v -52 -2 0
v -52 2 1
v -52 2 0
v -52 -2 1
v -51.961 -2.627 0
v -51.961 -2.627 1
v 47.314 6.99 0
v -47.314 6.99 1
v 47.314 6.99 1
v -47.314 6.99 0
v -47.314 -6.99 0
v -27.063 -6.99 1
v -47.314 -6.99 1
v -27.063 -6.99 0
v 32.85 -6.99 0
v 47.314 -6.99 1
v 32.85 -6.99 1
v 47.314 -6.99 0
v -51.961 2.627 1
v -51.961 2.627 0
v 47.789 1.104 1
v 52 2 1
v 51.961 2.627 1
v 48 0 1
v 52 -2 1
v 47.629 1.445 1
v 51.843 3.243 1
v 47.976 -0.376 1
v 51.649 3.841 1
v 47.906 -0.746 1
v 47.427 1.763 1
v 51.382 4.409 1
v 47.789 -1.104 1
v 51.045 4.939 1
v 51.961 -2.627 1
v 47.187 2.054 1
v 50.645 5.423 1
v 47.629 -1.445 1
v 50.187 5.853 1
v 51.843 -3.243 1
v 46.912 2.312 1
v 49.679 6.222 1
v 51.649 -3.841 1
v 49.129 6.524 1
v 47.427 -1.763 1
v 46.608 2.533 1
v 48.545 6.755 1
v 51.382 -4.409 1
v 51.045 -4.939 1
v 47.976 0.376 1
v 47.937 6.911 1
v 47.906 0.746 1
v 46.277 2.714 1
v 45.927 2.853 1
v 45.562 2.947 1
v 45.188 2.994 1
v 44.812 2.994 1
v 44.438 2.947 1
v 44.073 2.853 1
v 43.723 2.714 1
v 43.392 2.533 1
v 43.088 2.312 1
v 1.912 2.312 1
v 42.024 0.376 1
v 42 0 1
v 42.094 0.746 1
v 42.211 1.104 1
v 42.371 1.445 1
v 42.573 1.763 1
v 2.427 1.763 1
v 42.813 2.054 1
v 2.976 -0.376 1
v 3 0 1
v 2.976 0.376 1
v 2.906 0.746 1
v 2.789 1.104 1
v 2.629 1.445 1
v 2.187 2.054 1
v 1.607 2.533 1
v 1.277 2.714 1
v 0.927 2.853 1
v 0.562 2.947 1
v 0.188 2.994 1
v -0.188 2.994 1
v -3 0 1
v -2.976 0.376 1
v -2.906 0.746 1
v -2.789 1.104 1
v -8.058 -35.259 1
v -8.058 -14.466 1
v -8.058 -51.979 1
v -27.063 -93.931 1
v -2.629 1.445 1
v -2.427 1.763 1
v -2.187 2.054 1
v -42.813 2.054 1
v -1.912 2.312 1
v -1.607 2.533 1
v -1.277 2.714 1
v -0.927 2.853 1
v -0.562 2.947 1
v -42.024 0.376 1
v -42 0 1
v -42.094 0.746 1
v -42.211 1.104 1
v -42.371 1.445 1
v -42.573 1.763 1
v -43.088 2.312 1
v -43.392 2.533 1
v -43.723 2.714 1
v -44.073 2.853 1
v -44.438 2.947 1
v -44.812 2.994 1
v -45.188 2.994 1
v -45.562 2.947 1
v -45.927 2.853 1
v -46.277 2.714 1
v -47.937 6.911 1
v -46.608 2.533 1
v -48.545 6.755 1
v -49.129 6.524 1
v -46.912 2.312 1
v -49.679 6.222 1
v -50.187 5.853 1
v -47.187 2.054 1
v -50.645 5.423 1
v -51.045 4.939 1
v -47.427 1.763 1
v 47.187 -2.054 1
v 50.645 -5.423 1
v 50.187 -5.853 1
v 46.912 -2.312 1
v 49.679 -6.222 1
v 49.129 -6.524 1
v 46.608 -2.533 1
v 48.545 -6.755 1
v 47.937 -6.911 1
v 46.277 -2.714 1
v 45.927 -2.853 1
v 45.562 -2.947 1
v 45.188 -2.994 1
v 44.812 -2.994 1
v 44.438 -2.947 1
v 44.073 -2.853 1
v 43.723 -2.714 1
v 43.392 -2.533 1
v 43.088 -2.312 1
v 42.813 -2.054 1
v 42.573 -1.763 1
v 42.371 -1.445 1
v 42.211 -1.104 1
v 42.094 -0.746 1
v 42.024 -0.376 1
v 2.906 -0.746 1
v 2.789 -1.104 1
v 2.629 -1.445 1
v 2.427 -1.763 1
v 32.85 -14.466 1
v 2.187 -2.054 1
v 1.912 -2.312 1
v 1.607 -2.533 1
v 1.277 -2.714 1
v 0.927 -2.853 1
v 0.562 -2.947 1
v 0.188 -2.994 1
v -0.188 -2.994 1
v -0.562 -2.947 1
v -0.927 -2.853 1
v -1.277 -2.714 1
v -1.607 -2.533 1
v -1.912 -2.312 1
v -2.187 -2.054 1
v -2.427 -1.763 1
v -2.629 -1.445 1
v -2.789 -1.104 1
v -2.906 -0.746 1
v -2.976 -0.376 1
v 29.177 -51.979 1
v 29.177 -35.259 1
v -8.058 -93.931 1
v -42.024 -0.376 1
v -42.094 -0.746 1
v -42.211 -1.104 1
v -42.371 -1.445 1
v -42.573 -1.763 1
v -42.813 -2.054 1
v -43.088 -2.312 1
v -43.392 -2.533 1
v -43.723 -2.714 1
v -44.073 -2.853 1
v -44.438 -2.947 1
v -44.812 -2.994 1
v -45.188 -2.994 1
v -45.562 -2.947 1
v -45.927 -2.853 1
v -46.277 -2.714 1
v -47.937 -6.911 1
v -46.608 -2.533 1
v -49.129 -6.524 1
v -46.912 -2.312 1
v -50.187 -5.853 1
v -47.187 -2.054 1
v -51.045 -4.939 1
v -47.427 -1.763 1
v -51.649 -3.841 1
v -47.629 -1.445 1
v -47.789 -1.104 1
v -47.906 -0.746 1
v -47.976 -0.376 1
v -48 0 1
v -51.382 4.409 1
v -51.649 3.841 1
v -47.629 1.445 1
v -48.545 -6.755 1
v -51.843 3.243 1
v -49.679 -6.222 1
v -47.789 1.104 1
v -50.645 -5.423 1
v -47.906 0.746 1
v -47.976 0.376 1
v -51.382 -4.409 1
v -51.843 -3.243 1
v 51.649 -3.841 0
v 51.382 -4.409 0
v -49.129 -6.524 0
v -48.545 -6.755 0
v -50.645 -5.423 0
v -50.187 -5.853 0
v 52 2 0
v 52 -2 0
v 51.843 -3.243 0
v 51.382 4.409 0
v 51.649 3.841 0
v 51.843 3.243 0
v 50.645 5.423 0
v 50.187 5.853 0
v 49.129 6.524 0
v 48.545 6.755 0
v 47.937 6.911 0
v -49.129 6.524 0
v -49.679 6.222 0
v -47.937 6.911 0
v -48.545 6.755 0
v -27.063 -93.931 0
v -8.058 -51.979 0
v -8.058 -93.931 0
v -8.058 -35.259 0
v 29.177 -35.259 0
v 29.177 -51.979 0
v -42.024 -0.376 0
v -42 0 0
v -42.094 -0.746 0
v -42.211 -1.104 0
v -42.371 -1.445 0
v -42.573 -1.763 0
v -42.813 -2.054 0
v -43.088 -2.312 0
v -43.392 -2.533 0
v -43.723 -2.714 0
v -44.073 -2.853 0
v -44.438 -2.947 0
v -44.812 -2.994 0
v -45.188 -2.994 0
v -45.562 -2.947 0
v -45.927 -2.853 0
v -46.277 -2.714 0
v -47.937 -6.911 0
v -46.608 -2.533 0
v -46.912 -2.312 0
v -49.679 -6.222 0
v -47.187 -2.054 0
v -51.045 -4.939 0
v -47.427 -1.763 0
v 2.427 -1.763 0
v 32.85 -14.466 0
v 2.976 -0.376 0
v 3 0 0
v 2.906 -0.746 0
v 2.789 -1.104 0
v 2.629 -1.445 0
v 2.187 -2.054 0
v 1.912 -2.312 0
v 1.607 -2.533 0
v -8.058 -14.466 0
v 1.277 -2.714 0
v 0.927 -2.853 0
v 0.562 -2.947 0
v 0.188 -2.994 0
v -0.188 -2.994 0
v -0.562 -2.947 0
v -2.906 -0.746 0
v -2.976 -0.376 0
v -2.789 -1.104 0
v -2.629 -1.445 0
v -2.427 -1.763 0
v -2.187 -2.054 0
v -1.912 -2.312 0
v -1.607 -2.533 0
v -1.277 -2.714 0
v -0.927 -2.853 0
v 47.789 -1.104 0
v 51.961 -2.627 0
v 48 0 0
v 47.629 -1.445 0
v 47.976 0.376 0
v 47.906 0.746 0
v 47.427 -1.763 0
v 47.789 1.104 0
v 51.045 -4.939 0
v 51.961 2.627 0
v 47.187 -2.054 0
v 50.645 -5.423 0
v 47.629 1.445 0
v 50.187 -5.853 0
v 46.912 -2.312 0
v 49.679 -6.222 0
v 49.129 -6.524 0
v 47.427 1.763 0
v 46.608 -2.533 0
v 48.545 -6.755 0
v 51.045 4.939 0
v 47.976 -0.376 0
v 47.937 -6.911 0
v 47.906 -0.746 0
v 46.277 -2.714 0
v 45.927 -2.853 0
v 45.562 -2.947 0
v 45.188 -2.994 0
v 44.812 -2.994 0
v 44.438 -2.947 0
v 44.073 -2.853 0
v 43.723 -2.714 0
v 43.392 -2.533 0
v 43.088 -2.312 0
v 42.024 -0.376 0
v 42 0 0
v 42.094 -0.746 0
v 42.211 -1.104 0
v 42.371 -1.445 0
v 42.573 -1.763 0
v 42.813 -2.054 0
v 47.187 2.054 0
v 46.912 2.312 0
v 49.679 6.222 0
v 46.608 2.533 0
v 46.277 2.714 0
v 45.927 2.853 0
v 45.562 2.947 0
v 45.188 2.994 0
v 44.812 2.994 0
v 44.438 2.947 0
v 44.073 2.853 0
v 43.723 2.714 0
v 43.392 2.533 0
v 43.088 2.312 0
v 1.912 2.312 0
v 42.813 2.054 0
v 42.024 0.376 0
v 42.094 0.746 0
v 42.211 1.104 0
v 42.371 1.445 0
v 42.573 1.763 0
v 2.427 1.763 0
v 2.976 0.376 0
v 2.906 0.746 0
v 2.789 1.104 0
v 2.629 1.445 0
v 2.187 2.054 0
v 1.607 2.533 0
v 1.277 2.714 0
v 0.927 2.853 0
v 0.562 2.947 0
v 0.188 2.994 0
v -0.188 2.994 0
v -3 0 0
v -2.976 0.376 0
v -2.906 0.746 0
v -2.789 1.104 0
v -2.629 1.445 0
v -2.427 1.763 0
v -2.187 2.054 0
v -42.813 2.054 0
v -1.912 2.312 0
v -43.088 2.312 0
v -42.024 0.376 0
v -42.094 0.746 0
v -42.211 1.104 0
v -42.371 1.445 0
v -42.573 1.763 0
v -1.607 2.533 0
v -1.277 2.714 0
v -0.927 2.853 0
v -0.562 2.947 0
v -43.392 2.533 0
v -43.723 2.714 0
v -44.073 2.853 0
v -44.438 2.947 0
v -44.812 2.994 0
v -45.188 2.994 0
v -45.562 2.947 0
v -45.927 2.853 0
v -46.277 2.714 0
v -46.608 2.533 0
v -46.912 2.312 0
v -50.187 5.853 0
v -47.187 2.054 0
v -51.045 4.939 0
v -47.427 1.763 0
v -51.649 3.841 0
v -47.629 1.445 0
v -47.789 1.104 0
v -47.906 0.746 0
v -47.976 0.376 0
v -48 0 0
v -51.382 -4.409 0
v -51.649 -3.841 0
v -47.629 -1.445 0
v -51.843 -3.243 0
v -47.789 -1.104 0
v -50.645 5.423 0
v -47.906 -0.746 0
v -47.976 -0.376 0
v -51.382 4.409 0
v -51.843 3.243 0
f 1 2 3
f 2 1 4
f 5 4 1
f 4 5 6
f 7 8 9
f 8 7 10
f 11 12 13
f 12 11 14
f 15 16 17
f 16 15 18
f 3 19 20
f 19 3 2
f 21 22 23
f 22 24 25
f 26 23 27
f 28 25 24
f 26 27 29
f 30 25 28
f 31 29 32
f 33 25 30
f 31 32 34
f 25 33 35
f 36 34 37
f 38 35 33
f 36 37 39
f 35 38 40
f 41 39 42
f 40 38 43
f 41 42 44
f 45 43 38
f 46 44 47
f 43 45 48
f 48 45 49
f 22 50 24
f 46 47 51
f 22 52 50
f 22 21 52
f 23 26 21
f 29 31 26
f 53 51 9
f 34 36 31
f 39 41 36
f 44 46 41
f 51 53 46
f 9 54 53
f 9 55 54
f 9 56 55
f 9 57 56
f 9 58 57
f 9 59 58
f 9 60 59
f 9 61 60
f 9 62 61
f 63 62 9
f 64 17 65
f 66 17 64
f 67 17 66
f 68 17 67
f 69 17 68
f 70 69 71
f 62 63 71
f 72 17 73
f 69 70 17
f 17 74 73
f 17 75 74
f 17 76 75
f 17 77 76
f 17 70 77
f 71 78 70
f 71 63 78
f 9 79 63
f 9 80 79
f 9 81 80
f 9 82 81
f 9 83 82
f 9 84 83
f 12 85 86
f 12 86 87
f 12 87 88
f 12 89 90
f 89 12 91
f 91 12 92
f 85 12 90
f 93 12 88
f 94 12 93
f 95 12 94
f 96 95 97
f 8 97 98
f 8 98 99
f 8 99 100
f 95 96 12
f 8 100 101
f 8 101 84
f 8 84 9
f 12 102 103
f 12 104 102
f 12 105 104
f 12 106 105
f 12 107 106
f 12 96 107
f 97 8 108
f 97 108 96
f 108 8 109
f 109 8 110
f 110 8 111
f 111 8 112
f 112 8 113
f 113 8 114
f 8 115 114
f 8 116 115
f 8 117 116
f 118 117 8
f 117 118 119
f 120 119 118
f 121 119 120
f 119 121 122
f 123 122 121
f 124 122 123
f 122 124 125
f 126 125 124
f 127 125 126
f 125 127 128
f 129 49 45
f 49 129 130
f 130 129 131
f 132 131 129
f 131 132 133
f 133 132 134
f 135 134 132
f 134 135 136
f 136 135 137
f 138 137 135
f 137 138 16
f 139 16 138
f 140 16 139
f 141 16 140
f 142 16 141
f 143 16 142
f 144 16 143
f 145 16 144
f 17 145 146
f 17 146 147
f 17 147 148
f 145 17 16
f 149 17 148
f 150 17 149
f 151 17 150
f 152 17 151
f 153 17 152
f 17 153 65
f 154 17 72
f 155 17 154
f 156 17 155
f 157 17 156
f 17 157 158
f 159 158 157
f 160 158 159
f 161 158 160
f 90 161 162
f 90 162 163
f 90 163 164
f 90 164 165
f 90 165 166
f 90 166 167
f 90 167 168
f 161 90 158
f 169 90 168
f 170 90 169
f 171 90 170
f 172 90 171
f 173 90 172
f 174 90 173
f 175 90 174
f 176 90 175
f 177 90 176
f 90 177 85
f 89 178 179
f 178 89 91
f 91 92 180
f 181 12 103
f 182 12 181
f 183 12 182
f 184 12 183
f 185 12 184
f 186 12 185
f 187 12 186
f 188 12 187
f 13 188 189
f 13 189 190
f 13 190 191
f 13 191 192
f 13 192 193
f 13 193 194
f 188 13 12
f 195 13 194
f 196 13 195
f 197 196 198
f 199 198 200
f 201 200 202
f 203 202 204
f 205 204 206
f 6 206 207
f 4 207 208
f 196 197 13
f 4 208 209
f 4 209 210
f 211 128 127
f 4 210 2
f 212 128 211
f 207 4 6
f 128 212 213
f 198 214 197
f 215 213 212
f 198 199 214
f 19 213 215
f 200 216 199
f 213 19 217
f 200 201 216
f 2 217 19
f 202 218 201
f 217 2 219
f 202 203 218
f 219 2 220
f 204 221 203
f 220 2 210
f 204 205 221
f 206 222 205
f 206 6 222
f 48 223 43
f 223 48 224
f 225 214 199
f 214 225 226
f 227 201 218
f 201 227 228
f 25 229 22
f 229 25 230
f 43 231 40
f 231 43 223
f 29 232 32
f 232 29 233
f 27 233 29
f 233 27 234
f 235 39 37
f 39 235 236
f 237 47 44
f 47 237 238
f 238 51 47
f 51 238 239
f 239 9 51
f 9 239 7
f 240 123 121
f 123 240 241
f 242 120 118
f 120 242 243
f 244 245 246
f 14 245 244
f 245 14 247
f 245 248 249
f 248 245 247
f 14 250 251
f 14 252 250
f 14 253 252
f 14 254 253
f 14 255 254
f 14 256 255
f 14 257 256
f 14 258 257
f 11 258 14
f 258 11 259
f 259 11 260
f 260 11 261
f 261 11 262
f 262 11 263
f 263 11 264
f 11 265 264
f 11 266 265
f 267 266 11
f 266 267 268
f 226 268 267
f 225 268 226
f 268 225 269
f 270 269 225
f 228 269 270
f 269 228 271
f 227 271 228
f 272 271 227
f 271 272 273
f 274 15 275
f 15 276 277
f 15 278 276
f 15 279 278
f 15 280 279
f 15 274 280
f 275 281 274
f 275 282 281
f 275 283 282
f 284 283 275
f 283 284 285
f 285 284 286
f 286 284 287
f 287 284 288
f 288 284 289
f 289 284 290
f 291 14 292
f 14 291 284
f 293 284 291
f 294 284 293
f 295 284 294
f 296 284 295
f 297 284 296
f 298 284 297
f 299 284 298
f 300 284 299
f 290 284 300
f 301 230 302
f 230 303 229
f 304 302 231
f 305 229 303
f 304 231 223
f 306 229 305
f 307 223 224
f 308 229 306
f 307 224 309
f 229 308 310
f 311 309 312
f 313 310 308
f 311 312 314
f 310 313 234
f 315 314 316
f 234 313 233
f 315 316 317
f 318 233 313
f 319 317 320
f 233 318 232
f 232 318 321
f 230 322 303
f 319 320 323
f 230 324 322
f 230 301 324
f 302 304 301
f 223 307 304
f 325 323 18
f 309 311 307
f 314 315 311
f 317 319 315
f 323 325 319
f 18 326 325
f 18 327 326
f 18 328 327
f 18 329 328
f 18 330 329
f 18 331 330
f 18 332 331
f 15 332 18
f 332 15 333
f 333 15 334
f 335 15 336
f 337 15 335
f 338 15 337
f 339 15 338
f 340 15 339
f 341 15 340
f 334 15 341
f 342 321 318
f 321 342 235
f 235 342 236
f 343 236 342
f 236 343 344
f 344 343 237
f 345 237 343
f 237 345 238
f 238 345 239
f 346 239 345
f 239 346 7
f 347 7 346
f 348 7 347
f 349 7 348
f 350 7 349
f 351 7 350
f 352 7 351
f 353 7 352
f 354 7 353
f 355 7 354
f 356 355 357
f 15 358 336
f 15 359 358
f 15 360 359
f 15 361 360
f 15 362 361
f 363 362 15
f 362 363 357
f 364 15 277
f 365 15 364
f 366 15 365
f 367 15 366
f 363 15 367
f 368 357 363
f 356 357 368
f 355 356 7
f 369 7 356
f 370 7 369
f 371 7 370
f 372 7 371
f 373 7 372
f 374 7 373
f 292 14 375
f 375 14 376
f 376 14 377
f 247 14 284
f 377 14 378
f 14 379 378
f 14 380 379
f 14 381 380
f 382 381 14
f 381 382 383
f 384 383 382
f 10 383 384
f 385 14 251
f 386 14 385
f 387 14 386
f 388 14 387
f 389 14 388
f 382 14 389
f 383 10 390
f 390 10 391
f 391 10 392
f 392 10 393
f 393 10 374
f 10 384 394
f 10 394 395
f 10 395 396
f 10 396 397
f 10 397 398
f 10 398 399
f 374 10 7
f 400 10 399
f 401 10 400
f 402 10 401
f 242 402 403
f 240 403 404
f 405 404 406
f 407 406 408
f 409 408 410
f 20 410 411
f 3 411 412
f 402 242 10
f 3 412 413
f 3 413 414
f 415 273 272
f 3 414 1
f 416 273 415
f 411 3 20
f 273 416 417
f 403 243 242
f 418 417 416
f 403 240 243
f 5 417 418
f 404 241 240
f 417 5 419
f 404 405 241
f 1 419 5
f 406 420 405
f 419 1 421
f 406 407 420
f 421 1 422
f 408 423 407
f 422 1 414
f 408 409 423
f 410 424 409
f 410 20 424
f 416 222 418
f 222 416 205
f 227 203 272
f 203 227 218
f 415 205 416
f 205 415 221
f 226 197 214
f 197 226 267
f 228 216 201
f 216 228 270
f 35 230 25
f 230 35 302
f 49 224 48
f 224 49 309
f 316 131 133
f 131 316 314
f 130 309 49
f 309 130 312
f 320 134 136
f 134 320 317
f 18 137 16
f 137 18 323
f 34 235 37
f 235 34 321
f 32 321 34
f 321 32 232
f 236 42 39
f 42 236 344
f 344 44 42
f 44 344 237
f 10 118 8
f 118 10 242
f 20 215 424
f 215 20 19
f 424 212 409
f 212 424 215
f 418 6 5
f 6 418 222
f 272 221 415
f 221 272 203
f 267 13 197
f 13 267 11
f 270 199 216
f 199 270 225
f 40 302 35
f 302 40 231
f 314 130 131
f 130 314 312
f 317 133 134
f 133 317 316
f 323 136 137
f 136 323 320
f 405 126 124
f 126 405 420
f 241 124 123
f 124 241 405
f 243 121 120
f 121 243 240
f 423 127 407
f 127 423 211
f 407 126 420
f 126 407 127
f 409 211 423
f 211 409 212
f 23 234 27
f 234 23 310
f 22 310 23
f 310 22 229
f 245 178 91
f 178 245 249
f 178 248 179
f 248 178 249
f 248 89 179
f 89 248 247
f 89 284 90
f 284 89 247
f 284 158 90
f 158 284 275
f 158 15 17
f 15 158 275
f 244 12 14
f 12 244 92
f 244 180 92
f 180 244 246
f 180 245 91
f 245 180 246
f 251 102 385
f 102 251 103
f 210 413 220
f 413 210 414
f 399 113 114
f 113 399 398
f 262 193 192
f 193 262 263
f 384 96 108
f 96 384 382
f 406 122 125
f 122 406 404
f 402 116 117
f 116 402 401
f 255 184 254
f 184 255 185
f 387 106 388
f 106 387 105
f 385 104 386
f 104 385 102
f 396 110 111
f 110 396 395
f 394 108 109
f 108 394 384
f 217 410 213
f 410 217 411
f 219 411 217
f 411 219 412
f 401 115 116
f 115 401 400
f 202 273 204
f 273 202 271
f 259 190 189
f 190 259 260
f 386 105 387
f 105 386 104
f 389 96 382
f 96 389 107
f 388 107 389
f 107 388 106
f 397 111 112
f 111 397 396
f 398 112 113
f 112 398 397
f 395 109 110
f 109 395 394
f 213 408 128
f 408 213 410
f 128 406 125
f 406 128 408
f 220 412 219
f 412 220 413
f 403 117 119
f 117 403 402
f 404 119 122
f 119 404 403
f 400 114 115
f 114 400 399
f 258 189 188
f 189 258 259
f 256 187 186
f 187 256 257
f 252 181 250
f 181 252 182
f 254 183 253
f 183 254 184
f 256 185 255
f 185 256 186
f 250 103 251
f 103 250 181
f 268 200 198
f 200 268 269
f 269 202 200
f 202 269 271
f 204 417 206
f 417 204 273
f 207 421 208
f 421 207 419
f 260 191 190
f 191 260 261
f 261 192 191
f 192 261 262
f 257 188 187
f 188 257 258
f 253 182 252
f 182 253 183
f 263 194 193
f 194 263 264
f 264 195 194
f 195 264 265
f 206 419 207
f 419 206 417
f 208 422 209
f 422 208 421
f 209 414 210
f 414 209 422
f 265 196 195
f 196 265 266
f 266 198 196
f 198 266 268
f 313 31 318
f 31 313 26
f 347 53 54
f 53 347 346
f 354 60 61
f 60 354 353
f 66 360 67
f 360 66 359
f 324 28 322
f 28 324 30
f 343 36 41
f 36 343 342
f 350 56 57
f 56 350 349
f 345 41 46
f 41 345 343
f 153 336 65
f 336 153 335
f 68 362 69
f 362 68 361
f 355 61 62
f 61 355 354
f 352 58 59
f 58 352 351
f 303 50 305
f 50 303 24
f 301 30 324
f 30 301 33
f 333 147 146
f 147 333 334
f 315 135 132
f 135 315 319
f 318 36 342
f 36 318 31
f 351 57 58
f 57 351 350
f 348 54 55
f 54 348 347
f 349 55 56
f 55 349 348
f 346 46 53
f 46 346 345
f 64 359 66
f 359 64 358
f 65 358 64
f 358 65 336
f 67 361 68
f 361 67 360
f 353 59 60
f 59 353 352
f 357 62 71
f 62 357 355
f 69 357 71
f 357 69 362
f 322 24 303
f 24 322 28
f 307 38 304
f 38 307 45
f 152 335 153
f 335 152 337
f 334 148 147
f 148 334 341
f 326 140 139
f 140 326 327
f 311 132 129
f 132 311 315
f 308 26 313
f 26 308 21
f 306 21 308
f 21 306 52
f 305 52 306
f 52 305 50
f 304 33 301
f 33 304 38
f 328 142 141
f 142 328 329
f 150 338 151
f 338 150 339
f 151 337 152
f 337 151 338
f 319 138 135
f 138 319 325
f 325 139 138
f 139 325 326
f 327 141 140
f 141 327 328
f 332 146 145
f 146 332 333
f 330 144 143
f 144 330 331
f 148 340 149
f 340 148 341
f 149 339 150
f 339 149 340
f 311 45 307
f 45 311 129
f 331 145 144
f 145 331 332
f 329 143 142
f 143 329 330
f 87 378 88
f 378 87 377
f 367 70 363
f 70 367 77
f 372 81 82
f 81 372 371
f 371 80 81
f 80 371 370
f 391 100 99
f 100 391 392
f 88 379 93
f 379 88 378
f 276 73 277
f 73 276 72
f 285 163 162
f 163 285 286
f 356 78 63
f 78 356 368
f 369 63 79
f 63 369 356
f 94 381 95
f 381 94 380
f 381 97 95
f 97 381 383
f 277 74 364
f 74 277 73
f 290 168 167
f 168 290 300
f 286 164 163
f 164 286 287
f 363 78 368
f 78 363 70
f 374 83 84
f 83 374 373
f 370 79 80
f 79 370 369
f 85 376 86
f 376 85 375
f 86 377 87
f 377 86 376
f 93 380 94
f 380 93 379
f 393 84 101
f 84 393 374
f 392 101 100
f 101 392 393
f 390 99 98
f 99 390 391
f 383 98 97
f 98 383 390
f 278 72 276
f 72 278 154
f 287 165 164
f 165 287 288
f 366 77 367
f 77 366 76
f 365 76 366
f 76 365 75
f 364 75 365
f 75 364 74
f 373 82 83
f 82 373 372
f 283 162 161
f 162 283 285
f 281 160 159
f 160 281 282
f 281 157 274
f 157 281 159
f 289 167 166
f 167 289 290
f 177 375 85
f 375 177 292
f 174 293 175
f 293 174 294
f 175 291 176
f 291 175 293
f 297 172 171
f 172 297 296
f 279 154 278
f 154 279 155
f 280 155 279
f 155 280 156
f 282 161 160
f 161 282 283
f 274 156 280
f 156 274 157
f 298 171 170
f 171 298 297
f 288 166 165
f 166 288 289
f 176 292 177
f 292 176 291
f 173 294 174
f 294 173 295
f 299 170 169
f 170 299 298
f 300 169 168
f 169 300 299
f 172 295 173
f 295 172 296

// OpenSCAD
$fn = 50;


difference() {
	union() {
		translate(v = [0, 0, 0]) {
			rotate(a = [0, 0, 0]) {
				hull() {
					translate(v = [-47.0000000000, 2.0000000000, 0]) {
						rotate(a = [0, 0, 0]) {
							translate(v = [0, 0, 0]) {
								rotate(a = [0, 0, 0]) {
									cylinder(h = 1, r = 5);
								}
							}
						}
					}
					translate(v = [47.0000000000, 2.0000000000, 0]) {
						rotate(a = [0, 0, 0]) {
							translate(v = [0, 0, 0]) {
								rotate(a = [0, 0, 0]) {
									cylinder(h = 1, r = 5);
								}
							}
						}
					}
					translate(v = [-47.0000000000, -2.0000000000, 0]) {
						rotate(a = [0, 0, 0]) {
							translate(v = [0, 0, 0]) {
								rotate(a = [0, 0, 0]) {
									cylinder(h = 1, r = 5);
								}
							}
						}
					}
					translate(v = [47.0000000000, -2.0000000000, 0]) {
						rotate(a = [0, 0, 0]) {
							translate(v = [0, 0, 0]) {
								rotate(a = [0, 0, 0]) {
									cylinder(h = 1, r = 5);
								}
							}
						}
					}
				}
			}
		}
		translate(v = [0, 0, 0]) {
			rotate(a = [0, 0, 0]) {
				linear_extrude(height = 1) {
					text(font = "DejaVu Sans Mono:style=Bold", halign = "center", size = 95.0000000000, text = "F", valign = "top");
				}
			}
		}
	}
	union() {
		translate(v = [-45.0000000000, 0.0000000000, -125.0000000000]) {
			rotate(a = [0, 0, 0]) {
				cylinder(h = 250, r = 3.0000000000);
			}
		}
		translate(v = [45.0000000000, 0.0000000000, -125.0000000000]) {
			rotate(a = [0, 0, 0]) {
				cylinder(h = 250, r = 3.0000000000);
			}
		}
		translate(v = [45.0000000000, 0.0000000000, -125.0000000000]) {
			rotate(a = [0, 0, 0]) {
				cylinder(h = 250, r = 3.0000000000);
			}
		}
		translate(v = [0, 0, -125.0000000000]) {
			rotate(a = [0, 0, 0]) {
				cylinder(h = 250, r = 3.0000000000);
			}
		}
	}
}
